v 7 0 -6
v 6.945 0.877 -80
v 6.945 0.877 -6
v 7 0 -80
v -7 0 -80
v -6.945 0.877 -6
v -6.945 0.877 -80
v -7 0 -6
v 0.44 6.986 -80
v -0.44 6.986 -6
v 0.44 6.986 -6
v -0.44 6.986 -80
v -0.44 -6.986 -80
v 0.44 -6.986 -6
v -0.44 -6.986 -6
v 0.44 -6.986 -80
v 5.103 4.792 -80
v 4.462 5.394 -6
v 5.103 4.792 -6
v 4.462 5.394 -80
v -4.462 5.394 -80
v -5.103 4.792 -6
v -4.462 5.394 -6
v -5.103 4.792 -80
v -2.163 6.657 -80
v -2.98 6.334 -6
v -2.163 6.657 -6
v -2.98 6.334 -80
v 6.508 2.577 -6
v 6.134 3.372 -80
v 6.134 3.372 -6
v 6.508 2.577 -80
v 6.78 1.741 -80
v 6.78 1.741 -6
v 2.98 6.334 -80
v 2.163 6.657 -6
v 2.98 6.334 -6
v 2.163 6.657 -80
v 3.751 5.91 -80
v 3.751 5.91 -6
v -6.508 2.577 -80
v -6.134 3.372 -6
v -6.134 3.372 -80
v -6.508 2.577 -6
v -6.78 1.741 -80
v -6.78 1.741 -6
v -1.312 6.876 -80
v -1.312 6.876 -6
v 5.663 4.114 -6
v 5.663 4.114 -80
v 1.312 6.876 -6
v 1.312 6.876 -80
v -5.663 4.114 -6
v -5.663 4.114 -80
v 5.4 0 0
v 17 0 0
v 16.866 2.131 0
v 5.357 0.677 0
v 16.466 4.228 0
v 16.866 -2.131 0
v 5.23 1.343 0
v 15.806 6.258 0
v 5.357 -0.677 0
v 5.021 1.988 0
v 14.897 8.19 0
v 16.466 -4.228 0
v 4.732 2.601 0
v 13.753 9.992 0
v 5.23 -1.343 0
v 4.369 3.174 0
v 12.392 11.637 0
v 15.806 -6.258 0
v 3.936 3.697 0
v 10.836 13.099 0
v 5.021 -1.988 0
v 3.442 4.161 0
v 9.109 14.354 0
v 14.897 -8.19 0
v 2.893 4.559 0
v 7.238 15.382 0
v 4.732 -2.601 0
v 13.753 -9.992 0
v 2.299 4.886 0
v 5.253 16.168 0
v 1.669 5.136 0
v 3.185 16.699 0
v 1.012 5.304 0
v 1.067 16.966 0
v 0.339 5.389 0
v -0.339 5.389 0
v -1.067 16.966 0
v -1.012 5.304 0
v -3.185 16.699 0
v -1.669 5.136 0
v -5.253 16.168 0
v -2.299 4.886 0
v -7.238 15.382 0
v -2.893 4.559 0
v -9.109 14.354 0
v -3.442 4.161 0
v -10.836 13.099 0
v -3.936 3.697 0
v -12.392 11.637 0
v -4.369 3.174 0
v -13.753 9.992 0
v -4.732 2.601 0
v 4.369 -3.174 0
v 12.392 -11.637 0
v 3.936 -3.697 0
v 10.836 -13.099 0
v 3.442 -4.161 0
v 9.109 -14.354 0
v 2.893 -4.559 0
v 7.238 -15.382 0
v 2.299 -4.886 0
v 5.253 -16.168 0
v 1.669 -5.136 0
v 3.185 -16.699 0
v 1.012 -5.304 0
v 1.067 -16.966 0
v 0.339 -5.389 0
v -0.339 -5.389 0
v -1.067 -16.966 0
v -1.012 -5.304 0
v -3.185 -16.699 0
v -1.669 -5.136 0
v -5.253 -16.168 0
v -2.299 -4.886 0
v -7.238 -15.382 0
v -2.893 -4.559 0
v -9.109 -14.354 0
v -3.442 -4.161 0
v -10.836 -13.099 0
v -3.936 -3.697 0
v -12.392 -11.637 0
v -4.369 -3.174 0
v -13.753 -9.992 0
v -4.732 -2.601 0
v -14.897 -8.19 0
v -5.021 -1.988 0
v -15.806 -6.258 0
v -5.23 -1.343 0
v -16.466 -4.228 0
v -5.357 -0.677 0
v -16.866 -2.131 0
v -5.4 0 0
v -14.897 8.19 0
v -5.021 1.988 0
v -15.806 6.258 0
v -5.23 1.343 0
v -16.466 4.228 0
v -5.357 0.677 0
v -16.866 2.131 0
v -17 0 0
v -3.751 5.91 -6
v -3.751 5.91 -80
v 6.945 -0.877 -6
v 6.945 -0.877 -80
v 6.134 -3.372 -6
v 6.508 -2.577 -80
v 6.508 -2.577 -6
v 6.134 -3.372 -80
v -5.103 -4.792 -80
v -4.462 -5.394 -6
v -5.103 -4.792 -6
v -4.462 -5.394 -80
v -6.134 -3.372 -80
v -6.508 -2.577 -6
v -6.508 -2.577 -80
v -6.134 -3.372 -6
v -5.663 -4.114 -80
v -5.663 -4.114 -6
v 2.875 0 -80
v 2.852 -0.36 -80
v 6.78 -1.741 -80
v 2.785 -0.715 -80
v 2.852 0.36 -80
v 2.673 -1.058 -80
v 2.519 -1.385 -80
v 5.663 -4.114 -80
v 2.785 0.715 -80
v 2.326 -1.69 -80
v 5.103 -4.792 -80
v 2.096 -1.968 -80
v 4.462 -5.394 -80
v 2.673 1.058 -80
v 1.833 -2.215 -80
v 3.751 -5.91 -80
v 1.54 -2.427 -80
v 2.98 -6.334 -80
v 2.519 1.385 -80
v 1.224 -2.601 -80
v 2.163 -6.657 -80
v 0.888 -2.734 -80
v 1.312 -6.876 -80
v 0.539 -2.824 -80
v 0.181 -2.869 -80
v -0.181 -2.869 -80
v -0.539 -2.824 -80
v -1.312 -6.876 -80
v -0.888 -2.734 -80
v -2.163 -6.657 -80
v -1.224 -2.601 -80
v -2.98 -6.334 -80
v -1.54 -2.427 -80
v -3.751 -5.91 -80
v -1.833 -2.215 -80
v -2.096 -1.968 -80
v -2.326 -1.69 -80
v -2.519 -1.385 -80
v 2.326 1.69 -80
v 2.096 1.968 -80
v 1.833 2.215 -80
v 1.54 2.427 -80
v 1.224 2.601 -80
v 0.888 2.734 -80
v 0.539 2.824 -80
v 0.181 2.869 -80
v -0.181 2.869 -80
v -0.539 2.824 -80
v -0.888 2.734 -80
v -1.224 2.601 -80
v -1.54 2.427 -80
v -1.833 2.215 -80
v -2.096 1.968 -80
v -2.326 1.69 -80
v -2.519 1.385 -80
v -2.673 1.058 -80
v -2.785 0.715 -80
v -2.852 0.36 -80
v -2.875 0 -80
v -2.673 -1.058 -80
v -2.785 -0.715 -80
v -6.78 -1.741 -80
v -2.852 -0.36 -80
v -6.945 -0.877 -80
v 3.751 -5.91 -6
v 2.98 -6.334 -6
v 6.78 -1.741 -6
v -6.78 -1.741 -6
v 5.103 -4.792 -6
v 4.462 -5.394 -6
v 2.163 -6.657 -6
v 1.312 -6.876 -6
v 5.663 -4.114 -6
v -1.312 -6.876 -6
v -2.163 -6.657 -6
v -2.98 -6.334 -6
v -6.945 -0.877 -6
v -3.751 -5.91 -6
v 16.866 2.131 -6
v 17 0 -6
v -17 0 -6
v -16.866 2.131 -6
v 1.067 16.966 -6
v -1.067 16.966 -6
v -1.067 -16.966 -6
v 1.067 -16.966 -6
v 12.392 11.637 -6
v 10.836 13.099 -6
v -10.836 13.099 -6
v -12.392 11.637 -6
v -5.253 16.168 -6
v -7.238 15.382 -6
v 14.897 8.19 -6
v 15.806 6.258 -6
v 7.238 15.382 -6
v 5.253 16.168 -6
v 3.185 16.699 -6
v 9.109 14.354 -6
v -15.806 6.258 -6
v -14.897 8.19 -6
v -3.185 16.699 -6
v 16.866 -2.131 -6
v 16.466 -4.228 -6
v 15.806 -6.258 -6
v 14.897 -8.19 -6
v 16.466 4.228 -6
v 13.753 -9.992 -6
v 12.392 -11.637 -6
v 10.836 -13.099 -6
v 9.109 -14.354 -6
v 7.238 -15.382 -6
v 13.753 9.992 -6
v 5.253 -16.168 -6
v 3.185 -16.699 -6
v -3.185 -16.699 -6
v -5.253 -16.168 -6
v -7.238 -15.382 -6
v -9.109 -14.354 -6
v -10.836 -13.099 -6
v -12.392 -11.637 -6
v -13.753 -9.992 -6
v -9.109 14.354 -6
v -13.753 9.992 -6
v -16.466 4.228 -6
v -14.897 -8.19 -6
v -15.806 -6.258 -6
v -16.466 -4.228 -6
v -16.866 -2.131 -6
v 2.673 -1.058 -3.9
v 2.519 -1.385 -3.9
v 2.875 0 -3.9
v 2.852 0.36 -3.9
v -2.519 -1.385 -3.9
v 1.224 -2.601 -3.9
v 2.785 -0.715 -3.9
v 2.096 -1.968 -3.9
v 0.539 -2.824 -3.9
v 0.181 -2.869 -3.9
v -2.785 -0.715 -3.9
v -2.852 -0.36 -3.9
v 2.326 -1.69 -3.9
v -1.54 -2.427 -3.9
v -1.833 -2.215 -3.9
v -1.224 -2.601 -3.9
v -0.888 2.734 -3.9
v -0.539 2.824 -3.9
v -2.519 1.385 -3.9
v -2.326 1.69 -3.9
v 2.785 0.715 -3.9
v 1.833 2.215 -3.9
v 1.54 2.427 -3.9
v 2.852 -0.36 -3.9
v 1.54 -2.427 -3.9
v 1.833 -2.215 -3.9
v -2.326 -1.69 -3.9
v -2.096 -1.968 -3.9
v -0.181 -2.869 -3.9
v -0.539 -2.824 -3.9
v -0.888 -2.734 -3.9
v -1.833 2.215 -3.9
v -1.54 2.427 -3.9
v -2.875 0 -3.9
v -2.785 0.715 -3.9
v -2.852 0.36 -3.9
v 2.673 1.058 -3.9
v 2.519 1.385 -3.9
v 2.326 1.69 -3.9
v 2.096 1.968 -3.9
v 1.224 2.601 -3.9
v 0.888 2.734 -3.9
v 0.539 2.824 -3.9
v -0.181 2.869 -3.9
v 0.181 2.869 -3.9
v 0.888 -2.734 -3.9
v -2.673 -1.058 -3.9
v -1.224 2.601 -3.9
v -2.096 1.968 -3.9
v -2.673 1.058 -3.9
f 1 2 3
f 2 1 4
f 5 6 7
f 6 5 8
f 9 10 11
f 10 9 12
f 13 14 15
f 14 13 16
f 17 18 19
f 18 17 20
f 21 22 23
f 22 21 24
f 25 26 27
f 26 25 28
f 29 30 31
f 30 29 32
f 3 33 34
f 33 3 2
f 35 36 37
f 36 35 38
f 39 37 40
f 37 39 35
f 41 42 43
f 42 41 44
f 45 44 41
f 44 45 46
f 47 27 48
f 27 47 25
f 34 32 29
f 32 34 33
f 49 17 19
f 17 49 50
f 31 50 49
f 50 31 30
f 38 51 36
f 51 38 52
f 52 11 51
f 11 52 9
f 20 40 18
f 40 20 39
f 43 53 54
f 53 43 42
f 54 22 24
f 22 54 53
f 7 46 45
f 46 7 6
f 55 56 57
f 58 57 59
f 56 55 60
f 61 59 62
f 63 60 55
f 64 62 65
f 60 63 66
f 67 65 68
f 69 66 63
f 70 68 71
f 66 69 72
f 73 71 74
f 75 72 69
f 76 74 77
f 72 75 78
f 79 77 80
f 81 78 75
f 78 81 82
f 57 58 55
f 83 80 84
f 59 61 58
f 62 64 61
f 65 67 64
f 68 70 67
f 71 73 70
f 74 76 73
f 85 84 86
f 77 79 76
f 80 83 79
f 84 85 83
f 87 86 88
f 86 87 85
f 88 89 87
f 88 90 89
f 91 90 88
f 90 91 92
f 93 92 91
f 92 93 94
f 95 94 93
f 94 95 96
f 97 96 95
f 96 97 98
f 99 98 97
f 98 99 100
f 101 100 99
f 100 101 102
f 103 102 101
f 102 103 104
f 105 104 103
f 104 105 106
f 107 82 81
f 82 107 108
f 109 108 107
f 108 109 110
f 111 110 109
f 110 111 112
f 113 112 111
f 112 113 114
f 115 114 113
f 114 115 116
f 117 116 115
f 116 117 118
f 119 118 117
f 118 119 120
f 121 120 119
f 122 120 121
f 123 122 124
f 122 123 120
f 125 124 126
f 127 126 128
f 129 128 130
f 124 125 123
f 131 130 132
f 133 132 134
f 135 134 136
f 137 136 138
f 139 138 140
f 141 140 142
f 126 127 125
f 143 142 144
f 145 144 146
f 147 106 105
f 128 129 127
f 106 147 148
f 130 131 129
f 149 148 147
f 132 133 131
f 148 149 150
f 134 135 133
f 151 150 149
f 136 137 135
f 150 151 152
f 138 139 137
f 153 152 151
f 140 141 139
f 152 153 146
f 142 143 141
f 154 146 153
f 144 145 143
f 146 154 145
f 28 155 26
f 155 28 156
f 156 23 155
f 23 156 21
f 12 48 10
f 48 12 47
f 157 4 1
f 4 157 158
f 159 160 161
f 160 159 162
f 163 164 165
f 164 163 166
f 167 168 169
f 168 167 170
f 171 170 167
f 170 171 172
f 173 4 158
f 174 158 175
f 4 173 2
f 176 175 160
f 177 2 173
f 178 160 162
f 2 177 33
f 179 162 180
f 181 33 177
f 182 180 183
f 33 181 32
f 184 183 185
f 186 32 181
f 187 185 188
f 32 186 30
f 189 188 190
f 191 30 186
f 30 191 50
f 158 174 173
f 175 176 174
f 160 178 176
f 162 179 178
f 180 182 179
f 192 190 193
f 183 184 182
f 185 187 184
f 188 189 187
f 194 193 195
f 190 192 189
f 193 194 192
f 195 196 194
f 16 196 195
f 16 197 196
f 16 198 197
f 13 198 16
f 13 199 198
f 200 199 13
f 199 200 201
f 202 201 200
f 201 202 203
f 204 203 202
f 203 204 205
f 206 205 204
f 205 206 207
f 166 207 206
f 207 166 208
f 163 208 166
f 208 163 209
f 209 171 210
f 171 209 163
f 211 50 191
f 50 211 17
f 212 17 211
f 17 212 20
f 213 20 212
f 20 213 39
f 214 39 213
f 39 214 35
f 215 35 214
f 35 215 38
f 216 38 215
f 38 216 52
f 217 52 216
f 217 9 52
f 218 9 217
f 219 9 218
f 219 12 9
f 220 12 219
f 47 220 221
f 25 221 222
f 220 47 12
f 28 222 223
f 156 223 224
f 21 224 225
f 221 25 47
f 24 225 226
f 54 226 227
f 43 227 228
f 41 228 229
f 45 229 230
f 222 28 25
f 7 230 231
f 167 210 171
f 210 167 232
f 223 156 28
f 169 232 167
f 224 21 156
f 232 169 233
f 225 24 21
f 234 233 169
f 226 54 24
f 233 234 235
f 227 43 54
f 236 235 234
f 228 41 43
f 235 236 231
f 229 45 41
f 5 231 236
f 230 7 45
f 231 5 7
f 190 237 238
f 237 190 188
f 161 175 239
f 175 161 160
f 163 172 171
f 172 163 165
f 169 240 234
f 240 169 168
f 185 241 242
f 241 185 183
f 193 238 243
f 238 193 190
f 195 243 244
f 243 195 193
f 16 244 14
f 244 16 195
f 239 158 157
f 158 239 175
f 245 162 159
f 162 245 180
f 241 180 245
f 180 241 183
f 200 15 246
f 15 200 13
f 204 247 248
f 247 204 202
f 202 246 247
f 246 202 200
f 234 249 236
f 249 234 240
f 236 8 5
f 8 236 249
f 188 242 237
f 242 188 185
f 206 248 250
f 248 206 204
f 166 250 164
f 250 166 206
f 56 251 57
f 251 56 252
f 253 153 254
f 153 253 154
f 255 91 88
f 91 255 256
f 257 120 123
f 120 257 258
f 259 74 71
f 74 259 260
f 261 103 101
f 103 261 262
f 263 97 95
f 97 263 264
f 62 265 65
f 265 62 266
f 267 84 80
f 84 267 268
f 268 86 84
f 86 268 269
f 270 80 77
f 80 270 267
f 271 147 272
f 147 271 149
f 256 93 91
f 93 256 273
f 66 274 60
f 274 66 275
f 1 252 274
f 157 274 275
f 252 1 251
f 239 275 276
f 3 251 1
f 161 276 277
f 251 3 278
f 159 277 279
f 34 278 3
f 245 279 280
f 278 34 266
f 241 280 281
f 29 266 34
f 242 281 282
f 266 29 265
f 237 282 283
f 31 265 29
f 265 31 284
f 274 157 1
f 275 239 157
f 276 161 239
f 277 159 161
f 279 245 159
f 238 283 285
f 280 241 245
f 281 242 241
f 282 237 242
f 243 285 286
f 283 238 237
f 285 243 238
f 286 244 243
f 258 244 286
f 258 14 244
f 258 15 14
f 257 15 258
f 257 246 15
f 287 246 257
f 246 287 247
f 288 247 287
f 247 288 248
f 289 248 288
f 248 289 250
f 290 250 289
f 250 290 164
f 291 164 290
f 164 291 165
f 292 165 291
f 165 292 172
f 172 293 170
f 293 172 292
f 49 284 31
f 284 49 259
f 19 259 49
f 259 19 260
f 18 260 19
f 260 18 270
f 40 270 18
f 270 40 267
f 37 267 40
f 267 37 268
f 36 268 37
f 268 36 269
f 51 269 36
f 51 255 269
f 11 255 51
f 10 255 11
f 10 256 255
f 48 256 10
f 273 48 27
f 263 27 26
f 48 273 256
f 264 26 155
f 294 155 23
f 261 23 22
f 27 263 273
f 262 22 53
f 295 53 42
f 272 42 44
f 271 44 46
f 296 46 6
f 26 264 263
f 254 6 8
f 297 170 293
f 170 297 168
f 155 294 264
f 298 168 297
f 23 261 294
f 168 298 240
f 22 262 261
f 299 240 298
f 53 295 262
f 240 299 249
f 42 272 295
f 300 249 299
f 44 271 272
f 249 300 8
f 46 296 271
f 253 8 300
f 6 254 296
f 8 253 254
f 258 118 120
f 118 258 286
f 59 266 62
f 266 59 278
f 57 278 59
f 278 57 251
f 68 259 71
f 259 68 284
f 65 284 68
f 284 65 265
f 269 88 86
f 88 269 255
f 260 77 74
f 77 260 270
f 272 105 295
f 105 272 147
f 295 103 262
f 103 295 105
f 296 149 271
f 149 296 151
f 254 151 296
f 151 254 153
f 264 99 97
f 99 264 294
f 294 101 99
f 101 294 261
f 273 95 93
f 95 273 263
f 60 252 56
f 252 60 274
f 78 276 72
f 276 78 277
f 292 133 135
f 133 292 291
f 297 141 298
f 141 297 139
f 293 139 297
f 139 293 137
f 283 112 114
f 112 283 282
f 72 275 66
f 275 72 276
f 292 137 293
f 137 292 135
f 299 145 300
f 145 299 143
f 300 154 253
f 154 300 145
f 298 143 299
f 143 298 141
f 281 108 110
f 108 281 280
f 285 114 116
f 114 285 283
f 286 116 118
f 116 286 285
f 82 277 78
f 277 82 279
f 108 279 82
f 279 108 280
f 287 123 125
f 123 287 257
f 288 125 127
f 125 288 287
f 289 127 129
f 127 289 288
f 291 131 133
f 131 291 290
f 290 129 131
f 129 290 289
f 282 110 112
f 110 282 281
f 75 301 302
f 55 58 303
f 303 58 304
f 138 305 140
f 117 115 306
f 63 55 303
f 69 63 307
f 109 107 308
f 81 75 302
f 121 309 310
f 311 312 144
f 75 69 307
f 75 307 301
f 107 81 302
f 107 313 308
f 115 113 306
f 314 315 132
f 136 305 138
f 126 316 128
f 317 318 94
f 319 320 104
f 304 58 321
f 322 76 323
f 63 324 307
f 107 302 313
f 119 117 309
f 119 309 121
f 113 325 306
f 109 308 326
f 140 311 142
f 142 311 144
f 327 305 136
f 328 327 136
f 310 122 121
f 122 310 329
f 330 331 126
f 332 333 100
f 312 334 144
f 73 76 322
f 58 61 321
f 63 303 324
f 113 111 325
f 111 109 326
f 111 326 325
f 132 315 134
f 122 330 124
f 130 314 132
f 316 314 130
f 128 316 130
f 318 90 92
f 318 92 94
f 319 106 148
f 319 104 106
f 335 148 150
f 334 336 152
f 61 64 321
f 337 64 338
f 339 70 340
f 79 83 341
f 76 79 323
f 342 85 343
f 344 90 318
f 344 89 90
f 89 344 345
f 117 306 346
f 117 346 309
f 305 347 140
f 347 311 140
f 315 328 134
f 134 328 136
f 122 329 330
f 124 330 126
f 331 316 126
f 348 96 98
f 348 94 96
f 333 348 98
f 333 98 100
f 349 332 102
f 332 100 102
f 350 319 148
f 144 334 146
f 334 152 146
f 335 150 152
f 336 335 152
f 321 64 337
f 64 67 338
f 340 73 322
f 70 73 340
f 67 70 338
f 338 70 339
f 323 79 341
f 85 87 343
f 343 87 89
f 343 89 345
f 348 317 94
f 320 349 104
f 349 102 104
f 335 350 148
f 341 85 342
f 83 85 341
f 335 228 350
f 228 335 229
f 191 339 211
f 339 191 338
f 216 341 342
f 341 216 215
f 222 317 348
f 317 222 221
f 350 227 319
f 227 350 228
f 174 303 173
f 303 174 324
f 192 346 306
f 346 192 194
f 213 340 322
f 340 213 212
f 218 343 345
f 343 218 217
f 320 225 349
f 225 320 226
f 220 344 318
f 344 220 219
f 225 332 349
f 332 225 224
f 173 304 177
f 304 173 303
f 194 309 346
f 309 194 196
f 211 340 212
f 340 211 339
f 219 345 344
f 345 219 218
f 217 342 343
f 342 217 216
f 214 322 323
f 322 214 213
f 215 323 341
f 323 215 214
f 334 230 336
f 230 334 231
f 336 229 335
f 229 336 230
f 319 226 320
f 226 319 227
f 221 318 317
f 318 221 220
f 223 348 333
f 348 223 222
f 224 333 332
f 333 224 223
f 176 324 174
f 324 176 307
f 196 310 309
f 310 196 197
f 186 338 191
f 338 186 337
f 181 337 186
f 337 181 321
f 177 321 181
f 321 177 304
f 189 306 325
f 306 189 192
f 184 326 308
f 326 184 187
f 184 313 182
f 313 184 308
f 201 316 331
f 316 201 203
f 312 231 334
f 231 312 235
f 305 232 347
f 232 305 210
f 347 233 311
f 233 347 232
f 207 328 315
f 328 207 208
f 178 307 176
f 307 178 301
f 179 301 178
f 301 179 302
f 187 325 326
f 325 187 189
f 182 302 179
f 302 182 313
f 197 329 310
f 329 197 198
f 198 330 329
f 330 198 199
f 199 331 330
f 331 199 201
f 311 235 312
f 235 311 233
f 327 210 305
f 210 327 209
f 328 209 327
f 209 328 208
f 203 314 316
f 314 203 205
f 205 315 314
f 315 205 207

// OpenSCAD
$fn = 50;


difference() {
	union() {
		translate(v = [0, 0, -80.0000000000]) {
			cylinder(h = 80, r = 7.0000000000);
		}
		translate(v = [0, 0, -6.0000000000]) {
			cylinder(h = 6, r = 17.0000000000);
		}
	}
	union() {
		translate(v = [0, 0, 0]) {
			rotate(a = [0, 0, 0]) {
				difference() {
					union() {
						#translate(v = [0, 0, -80.0000000000]) {
							cylinder(h = 80, r = 2.6000000000);
						}
						#translate(v = [0, 0, -3.9000000000]) {
							cylinder(h = 3.9000000000, r = 7.0000000000, r1 = 2.8750000000, r2 = 5.4000000000);
						}
						#translate(v = [0, 0, -80.0000000000]) {
							cylinder(h = 80, r = 2.8750000000);
						}
						#translate(v = [0, 0, -80.0000000000]) {
							cylinder(h = 80, r = 2.6000000000);
						}
					}
					union();
				}
			}
		}
	}
}
